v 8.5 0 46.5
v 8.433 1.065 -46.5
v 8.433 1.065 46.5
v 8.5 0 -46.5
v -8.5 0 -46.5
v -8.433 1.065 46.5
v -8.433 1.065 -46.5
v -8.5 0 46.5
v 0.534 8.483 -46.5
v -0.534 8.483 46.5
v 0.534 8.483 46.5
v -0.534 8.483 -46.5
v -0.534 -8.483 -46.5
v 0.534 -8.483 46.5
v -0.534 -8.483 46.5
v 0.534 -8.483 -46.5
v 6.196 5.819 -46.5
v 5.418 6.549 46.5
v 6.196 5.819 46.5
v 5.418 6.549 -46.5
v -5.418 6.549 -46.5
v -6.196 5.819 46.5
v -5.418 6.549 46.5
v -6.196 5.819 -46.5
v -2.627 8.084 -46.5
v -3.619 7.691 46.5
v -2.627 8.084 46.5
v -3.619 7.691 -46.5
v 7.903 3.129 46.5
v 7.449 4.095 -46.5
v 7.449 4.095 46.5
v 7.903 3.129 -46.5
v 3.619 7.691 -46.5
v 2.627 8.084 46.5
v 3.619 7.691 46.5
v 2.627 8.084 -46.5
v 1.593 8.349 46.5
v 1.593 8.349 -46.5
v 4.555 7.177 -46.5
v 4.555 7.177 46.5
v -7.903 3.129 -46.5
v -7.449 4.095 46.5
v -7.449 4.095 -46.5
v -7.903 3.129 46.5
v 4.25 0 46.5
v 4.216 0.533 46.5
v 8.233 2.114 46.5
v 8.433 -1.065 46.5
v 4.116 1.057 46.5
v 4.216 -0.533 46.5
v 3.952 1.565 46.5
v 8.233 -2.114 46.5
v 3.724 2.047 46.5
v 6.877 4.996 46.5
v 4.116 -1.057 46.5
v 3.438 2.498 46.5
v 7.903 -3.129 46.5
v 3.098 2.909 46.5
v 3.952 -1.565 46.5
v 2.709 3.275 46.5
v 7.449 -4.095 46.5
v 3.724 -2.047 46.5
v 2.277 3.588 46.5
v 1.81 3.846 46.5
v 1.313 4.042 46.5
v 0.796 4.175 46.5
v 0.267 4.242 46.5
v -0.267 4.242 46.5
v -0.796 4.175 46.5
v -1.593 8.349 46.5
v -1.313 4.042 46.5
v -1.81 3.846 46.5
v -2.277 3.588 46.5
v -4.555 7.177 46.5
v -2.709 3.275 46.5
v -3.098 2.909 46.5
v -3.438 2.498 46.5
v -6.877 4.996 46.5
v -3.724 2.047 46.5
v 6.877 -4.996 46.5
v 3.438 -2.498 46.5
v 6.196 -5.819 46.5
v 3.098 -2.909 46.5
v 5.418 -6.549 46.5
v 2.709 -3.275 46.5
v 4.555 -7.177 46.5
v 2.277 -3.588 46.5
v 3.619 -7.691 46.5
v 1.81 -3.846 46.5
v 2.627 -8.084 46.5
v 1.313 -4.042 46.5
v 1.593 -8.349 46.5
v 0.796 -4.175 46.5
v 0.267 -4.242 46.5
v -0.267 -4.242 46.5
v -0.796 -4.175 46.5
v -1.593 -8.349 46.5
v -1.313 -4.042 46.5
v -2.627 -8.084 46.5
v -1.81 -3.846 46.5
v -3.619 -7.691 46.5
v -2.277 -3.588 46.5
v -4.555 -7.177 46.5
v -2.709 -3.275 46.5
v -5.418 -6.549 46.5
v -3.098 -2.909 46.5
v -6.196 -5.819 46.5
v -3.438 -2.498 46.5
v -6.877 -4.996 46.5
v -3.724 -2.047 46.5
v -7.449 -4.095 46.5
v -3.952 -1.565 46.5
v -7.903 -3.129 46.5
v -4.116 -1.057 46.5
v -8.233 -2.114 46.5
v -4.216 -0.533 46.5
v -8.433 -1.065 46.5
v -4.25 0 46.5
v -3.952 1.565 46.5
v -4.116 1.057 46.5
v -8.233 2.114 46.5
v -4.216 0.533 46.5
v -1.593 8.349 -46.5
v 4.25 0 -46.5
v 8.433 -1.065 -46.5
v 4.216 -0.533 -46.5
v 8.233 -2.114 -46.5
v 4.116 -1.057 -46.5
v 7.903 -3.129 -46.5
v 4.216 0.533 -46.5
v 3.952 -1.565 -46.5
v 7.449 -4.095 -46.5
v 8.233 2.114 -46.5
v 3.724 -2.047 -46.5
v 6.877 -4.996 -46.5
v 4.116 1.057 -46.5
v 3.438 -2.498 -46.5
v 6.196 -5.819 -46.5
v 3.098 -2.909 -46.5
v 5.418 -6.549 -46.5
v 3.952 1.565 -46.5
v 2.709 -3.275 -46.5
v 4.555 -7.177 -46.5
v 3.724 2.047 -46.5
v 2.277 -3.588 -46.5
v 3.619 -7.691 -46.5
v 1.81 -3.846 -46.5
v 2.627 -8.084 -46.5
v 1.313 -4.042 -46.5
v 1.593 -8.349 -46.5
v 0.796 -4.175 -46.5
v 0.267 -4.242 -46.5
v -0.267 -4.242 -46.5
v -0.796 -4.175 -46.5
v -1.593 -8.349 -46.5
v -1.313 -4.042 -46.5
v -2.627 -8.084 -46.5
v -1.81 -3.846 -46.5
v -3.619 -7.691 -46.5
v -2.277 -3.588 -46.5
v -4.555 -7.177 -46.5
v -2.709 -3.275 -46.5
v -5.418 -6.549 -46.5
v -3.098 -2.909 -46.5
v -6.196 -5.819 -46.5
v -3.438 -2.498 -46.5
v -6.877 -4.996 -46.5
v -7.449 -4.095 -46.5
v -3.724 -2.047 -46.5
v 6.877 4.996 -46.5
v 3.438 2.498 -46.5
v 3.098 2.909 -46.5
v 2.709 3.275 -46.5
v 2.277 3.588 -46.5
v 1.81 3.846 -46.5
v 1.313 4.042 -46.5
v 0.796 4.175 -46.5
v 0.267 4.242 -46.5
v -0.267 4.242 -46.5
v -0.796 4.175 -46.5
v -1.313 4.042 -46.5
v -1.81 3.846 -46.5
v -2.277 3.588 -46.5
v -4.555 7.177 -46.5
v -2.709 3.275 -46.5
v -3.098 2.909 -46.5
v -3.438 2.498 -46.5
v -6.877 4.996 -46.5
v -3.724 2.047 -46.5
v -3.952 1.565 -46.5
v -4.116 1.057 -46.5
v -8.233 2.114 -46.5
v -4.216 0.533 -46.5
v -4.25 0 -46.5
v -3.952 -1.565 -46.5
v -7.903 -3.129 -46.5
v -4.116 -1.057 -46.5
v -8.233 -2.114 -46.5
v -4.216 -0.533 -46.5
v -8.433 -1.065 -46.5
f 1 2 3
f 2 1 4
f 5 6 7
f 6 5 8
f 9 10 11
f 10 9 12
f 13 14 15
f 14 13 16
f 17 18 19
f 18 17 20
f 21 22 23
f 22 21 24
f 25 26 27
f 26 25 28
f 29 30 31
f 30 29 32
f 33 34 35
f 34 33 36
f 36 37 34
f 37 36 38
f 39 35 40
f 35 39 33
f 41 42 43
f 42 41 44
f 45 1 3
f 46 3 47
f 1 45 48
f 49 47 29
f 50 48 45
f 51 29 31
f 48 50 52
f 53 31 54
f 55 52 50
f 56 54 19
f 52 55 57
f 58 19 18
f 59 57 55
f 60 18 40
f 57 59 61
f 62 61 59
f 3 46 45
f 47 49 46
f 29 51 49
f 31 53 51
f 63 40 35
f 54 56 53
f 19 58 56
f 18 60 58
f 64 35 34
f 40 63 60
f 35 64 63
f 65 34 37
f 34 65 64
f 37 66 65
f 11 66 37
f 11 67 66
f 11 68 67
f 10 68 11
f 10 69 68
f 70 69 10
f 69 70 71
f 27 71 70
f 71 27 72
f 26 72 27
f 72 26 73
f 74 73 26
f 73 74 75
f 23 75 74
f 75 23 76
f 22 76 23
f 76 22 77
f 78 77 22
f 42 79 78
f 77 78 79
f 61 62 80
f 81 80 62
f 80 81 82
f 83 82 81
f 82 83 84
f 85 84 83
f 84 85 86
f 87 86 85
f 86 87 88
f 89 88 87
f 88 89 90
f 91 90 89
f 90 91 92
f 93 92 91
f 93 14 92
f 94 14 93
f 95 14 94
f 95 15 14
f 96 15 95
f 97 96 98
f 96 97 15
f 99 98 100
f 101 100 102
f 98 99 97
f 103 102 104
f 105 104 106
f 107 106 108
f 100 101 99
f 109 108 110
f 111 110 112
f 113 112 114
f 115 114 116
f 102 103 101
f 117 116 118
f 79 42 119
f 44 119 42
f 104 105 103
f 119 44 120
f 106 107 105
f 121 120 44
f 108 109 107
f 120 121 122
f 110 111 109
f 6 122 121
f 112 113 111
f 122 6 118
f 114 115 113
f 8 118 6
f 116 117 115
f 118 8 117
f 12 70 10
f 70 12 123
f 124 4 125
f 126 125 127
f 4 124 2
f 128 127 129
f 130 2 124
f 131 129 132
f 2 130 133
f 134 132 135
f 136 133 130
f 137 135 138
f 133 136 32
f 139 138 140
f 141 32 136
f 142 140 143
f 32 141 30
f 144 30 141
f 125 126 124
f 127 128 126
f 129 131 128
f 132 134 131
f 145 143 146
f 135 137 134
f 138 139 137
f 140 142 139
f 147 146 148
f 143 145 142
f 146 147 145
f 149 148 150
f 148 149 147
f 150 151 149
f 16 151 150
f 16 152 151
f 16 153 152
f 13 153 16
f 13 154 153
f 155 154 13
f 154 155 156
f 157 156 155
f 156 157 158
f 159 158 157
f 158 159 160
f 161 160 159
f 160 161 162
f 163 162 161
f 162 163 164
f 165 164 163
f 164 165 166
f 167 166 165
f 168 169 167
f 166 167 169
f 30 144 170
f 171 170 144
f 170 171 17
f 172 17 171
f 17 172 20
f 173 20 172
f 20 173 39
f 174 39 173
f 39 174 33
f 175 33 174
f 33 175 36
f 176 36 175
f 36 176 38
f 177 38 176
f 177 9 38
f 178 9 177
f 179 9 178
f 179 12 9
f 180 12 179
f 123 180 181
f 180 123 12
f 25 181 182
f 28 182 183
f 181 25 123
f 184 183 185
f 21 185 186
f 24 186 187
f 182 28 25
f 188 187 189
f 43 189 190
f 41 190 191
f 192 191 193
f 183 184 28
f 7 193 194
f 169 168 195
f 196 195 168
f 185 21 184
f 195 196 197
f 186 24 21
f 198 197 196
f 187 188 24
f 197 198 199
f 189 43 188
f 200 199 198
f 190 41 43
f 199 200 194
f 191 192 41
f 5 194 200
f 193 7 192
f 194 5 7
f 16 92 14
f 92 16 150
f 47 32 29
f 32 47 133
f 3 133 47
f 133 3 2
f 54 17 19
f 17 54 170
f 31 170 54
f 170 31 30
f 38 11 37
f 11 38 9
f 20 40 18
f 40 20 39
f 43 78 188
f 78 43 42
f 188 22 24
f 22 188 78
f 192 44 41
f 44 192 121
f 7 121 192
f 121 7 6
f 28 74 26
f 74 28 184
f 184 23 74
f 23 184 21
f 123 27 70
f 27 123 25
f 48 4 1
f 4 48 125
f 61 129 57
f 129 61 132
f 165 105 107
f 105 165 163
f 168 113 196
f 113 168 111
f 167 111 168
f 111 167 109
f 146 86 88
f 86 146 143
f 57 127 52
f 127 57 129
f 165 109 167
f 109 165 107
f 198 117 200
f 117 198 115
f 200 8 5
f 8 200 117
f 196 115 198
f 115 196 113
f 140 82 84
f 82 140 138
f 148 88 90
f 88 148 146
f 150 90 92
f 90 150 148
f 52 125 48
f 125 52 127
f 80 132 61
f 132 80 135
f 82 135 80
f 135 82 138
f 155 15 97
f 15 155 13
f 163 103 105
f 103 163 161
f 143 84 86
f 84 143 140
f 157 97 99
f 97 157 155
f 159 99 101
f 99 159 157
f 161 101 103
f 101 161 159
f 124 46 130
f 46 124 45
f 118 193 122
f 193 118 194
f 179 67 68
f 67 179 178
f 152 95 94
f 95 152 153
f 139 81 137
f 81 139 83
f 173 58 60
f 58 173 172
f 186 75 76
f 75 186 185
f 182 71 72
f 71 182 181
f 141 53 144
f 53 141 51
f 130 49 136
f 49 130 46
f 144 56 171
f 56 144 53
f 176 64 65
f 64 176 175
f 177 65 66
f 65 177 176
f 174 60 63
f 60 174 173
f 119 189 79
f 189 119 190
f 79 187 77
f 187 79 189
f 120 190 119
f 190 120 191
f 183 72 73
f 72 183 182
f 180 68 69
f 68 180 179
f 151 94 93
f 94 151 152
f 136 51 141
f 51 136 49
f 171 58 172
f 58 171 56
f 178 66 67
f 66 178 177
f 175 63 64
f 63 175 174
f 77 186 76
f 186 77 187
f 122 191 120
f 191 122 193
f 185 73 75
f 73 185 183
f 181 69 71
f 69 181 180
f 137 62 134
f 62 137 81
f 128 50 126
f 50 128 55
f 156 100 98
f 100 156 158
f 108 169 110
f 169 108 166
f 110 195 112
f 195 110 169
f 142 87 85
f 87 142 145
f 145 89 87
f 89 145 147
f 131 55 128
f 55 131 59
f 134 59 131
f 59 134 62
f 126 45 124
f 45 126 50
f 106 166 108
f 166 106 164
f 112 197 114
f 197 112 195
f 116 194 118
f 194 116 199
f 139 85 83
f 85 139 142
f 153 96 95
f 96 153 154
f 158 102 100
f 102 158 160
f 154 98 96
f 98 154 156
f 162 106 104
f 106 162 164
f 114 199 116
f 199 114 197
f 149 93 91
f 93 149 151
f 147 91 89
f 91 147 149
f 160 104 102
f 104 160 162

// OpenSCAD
$fn = 50;


difference() {
	union() {
		translate(v = [0, 0, -46.5000000000]) {
			cylinder(h = 93, r = 8.5000000000);
		}
	}
	union() {
		translate(v = [0, 0, -100.0000000000]) {
			cylinder(h = 200, r = 4.2500000000);
		}
	}
}
